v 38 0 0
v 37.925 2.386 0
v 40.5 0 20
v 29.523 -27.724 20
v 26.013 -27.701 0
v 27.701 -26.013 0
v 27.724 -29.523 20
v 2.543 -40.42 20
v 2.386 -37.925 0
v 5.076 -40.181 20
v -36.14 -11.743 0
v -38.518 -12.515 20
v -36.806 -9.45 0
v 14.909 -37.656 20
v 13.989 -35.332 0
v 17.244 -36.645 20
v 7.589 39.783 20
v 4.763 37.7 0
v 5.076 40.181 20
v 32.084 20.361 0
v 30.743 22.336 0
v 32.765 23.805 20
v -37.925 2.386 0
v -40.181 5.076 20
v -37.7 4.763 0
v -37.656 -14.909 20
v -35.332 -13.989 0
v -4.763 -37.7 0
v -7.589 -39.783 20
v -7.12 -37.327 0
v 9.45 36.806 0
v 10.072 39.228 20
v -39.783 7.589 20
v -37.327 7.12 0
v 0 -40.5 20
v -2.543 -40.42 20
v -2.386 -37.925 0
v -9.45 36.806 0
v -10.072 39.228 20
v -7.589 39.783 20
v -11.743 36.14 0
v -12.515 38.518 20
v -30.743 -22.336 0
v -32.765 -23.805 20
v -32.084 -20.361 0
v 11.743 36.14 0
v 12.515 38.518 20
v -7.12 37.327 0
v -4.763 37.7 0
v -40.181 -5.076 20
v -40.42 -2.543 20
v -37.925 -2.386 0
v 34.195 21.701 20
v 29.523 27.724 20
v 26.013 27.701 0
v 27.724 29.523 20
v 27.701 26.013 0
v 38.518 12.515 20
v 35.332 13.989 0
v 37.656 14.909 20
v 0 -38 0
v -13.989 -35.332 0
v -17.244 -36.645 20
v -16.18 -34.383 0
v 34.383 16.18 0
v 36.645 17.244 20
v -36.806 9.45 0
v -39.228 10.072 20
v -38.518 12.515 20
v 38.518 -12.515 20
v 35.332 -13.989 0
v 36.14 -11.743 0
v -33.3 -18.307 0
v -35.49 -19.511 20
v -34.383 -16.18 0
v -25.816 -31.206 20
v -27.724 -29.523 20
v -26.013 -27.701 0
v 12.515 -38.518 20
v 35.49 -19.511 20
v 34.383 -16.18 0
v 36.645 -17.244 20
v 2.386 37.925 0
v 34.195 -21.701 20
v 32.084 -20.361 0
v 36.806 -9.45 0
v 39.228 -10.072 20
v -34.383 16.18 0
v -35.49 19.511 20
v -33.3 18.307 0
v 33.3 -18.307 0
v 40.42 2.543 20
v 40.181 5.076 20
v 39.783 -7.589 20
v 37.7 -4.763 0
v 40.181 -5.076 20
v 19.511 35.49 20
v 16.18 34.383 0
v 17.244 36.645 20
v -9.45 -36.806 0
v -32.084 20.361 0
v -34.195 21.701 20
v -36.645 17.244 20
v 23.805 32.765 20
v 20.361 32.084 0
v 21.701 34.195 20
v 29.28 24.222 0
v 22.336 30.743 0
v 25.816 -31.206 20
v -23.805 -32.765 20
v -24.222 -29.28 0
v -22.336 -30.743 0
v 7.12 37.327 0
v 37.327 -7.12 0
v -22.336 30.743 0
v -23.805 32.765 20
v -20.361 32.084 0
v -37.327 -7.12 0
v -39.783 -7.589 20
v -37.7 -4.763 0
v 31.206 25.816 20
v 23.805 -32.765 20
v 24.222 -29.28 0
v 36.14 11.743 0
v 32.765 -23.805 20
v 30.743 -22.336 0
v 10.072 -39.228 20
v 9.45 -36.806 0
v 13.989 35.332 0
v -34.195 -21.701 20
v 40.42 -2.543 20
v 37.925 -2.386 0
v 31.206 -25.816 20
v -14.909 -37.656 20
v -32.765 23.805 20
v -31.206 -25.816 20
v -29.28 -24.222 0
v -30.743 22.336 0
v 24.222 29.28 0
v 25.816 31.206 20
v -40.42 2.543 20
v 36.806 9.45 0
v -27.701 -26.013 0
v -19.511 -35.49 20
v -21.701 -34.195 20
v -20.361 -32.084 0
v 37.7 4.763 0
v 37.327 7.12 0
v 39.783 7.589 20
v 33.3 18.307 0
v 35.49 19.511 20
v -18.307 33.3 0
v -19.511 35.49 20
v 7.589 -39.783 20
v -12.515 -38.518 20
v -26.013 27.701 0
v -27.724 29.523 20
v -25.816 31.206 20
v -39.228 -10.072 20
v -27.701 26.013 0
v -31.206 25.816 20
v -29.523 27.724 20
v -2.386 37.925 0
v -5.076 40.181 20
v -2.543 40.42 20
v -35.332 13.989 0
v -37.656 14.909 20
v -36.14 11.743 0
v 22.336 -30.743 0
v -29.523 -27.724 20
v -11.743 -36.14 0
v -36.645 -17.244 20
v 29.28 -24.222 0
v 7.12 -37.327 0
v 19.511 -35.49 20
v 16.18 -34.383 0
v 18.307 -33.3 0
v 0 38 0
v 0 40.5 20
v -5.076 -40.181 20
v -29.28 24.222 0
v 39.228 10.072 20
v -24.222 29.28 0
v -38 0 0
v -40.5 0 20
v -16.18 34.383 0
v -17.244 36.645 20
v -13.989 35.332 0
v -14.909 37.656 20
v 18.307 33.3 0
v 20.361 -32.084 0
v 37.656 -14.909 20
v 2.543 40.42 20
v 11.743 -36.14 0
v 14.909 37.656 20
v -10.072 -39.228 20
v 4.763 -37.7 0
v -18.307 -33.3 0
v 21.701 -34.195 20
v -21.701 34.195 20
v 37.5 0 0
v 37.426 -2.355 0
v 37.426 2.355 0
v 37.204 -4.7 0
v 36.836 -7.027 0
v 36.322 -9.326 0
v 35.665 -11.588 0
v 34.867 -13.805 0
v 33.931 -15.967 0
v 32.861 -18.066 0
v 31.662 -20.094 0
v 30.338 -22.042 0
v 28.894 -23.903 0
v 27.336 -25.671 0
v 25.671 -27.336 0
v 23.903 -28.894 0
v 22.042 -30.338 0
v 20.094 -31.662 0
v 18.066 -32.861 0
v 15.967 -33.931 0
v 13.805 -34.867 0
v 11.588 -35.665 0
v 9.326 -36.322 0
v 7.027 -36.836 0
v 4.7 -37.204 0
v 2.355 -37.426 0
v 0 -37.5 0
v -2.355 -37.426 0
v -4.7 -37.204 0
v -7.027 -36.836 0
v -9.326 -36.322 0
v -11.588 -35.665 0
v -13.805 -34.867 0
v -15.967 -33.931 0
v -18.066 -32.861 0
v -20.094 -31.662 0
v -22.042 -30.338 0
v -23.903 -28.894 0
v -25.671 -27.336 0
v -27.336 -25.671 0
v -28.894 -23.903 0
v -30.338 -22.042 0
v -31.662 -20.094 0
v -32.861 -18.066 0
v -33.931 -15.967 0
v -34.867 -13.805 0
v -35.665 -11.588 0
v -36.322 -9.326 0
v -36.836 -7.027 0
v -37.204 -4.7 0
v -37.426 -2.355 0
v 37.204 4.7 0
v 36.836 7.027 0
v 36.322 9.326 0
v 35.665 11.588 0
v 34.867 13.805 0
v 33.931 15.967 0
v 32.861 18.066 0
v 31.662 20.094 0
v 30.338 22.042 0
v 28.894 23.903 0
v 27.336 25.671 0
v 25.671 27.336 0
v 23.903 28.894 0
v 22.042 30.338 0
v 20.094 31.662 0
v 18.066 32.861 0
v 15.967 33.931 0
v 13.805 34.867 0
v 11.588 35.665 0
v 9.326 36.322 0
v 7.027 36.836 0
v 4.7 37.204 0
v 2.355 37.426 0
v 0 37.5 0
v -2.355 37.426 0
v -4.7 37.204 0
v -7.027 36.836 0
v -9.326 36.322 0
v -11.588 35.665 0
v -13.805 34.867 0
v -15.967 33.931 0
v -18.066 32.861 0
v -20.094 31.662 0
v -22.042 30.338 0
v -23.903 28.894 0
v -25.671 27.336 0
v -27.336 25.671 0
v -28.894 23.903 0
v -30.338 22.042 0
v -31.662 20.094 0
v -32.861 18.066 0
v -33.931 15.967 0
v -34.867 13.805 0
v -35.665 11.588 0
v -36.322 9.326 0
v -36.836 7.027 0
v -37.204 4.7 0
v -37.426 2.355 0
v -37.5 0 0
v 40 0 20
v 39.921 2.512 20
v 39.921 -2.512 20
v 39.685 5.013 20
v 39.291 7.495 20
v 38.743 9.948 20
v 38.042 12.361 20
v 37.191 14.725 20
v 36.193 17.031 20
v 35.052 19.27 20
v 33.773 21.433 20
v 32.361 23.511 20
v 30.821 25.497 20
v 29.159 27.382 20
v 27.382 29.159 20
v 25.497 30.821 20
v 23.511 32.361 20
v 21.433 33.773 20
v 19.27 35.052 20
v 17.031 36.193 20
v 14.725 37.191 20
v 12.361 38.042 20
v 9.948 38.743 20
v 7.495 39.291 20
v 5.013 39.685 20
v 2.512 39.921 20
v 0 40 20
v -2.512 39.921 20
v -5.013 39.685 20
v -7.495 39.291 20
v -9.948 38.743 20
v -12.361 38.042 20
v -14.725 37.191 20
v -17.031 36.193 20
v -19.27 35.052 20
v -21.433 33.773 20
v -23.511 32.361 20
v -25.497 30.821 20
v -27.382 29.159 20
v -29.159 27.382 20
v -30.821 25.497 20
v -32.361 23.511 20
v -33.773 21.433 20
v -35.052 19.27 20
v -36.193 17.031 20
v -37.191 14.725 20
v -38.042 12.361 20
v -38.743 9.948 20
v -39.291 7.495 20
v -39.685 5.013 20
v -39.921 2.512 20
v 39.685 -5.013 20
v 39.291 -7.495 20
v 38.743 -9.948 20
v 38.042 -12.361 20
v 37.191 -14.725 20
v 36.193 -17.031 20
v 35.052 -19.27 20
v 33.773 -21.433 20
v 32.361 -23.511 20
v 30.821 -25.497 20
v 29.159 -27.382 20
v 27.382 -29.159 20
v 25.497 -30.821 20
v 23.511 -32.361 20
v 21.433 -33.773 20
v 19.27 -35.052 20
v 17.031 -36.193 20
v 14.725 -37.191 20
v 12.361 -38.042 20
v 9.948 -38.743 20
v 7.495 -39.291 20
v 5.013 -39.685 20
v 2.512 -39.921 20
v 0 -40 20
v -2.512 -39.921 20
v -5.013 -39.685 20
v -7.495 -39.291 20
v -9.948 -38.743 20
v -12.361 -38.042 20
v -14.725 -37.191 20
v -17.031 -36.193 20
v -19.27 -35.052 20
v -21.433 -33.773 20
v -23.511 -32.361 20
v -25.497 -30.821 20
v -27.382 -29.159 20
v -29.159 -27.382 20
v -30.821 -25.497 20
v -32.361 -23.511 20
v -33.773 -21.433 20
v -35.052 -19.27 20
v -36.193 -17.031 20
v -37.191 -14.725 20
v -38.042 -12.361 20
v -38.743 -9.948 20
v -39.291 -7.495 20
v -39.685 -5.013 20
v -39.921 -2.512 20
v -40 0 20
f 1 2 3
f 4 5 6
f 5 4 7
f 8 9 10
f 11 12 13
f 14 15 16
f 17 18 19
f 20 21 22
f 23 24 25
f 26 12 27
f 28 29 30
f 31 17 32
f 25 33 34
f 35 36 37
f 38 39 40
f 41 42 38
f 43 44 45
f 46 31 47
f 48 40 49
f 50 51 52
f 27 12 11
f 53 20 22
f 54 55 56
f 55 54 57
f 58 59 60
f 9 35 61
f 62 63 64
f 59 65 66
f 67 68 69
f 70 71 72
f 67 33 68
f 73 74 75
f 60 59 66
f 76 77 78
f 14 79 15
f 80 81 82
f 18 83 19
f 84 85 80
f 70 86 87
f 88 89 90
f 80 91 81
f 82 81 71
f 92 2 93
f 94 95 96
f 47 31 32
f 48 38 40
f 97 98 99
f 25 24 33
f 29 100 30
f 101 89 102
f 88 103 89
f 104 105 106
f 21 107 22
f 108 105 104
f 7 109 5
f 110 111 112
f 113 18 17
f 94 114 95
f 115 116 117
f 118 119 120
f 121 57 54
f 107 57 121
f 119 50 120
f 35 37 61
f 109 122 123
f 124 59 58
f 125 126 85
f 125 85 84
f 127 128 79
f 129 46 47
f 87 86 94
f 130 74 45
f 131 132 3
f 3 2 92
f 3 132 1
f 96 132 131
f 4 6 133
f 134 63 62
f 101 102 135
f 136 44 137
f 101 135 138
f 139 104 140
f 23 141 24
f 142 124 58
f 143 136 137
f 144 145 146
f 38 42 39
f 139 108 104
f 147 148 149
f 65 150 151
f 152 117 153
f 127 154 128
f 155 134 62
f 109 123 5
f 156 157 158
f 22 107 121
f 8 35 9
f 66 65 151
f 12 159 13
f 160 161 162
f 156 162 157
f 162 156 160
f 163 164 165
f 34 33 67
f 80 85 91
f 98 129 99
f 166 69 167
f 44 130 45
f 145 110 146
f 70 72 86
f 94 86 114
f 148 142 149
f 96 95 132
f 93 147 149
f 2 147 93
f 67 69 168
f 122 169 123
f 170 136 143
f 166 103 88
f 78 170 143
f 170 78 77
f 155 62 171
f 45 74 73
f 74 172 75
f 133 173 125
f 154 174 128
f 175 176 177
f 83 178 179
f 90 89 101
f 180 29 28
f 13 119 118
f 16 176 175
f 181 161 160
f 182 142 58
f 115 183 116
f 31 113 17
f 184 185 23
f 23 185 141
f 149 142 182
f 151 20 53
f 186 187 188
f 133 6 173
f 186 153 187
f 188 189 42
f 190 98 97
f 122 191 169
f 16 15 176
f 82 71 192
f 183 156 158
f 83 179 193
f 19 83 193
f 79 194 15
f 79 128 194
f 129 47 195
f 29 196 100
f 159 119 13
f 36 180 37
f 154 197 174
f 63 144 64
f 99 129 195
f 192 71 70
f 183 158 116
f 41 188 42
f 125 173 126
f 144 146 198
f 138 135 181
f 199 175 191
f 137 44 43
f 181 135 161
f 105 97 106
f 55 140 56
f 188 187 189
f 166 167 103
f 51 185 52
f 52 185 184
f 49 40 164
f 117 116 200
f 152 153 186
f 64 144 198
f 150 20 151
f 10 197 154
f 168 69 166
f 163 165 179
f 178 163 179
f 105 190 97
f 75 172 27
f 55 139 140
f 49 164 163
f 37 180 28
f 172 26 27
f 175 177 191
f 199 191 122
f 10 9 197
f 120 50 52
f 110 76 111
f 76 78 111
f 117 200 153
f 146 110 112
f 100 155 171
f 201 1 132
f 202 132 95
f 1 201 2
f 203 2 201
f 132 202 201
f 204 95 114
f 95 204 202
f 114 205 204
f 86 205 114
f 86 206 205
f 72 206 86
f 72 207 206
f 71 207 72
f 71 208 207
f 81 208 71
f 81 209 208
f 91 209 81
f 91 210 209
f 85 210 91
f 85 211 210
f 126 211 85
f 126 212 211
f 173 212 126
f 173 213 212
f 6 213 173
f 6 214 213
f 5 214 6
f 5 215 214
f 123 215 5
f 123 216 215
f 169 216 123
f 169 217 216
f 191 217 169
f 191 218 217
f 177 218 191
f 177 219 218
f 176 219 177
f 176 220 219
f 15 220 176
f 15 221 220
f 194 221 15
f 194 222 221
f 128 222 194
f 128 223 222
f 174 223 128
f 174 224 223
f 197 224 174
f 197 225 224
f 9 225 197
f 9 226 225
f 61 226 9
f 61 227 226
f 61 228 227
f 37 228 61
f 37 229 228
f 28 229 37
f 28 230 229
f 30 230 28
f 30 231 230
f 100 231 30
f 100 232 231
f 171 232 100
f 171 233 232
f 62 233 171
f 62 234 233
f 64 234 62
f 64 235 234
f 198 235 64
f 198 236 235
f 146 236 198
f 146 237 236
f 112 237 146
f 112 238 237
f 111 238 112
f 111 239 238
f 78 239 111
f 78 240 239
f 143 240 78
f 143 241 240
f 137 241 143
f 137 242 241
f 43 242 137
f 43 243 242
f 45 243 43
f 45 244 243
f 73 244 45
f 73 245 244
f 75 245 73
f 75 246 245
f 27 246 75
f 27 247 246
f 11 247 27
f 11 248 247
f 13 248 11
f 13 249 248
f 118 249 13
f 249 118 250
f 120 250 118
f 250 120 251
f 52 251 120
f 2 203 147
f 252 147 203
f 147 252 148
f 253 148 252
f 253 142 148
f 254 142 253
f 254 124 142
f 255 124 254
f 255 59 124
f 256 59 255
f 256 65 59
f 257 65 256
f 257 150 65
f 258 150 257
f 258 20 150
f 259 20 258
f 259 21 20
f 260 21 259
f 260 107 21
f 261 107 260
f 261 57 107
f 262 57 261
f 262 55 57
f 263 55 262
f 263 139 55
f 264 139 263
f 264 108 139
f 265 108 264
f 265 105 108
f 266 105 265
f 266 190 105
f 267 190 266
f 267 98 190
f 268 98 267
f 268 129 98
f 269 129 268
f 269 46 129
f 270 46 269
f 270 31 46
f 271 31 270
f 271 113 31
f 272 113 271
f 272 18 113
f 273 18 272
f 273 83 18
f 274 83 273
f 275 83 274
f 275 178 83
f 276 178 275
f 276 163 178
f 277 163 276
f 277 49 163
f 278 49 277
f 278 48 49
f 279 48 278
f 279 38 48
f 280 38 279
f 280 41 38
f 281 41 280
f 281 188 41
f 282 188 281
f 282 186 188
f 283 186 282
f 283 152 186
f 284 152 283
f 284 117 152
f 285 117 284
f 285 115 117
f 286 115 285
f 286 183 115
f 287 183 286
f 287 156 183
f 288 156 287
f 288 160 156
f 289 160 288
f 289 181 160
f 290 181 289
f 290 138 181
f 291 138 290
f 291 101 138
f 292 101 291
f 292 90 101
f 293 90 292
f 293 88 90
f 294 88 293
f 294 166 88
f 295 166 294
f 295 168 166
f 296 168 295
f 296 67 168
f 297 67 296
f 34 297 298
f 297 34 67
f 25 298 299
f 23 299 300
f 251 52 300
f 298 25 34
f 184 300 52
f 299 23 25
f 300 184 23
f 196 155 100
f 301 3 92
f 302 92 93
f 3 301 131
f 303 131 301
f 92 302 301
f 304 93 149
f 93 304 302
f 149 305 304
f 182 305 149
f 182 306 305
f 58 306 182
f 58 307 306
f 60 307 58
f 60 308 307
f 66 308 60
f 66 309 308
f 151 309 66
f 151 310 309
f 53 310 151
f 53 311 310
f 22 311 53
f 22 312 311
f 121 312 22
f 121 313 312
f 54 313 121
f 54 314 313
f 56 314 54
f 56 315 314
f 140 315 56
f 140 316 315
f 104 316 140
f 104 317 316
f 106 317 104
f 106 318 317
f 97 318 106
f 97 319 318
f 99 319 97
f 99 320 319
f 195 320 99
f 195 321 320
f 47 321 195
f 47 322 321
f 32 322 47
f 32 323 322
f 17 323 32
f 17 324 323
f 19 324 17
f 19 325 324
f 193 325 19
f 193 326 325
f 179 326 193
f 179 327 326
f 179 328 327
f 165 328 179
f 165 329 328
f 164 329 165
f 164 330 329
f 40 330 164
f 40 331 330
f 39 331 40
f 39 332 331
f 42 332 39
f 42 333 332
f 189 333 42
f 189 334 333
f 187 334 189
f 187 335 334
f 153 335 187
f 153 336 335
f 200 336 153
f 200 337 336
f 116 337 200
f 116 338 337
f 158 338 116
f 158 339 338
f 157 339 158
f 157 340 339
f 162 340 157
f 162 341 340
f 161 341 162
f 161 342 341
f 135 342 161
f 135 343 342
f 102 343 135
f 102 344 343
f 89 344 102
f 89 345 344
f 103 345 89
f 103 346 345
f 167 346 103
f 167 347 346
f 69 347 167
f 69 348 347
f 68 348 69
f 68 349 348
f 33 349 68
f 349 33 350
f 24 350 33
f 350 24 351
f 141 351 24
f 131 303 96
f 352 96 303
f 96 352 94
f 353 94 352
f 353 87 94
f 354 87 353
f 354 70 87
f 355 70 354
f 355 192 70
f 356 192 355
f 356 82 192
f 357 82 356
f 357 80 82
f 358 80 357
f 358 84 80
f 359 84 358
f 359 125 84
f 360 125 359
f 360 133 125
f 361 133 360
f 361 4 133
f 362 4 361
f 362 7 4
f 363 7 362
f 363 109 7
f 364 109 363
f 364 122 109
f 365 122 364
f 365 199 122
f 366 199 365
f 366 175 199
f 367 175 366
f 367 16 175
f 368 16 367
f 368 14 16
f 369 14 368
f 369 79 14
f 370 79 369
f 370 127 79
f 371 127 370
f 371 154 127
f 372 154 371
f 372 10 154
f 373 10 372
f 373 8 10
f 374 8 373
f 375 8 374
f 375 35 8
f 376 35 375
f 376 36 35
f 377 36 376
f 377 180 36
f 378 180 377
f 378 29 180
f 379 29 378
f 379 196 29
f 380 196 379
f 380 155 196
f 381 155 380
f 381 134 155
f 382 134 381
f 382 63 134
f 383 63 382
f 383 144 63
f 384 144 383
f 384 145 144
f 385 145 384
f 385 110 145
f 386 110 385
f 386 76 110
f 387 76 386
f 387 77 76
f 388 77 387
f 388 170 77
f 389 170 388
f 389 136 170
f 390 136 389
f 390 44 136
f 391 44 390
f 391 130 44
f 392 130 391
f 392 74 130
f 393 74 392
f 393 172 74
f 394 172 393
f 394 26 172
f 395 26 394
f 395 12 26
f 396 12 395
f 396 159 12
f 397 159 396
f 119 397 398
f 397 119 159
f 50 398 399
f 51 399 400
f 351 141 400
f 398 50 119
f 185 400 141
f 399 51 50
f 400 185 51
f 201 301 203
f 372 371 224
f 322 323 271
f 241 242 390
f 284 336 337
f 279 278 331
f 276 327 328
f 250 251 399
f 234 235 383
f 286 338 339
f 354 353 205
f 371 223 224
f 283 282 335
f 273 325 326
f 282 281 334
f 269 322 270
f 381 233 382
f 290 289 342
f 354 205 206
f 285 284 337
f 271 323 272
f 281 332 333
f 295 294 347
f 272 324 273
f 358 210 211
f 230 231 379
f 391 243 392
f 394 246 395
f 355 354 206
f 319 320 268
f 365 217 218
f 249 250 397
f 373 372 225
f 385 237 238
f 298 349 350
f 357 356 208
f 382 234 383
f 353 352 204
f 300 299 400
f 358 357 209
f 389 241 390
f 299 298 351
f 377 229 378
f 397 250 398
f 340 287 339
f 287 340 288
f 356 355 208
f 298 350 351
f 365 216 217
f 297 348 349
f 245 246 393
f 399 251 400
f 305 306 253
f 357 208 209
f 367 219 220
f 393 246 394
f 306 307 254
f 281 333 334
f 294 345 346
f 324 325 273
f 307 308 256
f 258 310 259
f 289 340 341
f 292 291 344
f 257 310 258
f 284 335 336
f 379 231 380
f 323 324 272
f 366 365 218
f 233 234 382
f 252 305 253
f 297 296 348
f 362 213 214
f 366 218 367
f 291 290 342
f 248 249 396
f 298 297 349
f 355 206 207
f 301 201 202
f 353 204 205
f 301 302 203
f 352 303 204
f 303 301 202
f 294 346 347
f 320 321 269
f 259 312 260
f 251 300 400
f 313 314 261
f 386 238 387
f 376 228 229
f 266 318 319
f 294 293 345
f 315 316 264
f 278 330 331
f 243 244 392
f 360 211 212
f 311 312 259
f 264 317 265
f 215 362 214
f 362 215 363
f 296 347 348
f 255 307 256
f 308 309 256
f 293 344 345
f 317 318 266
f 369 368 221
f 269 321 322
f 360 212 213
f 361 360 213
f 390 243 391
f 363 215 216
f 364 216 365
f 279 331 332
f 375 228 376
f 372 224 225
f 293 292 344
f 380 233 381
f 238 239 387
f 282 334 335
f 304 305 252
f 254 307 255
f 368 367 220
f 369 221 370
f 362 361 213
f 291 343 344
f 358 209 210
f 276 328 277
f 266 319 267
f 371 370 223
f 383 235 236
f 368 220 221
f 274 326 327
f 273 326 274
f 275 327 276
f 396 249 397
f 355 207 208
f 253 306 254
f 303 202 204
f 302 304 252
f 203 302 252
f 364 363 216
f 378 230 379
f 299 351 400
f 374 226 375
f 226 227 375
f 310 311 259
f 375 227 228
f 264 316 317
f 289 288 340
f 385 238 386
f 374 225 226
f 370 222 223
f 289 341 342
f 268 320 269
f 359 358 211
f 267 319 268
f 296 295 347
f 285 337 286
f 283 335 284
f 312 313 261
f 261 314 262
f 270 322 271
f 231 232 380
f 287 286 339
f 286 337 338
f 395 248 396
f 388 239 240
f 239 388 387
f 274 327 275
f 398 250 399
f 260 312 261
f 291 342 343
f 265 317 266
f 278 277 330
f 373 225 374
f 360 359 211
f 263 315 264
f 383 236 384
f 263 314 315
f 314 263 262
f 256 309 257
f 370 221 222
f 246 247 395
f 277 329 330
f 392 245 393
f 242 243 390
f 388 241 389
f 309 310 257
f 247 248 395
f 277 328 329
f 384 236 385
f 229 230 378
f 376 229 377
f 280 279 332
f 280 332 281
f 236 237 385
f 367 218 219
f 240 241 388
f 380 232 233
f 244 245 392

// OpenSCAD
$fn=100;
difference(){
cylinder(d1=76,d2=81,h=20);
cylinder(d1=75,d2=80,h=20);

}
